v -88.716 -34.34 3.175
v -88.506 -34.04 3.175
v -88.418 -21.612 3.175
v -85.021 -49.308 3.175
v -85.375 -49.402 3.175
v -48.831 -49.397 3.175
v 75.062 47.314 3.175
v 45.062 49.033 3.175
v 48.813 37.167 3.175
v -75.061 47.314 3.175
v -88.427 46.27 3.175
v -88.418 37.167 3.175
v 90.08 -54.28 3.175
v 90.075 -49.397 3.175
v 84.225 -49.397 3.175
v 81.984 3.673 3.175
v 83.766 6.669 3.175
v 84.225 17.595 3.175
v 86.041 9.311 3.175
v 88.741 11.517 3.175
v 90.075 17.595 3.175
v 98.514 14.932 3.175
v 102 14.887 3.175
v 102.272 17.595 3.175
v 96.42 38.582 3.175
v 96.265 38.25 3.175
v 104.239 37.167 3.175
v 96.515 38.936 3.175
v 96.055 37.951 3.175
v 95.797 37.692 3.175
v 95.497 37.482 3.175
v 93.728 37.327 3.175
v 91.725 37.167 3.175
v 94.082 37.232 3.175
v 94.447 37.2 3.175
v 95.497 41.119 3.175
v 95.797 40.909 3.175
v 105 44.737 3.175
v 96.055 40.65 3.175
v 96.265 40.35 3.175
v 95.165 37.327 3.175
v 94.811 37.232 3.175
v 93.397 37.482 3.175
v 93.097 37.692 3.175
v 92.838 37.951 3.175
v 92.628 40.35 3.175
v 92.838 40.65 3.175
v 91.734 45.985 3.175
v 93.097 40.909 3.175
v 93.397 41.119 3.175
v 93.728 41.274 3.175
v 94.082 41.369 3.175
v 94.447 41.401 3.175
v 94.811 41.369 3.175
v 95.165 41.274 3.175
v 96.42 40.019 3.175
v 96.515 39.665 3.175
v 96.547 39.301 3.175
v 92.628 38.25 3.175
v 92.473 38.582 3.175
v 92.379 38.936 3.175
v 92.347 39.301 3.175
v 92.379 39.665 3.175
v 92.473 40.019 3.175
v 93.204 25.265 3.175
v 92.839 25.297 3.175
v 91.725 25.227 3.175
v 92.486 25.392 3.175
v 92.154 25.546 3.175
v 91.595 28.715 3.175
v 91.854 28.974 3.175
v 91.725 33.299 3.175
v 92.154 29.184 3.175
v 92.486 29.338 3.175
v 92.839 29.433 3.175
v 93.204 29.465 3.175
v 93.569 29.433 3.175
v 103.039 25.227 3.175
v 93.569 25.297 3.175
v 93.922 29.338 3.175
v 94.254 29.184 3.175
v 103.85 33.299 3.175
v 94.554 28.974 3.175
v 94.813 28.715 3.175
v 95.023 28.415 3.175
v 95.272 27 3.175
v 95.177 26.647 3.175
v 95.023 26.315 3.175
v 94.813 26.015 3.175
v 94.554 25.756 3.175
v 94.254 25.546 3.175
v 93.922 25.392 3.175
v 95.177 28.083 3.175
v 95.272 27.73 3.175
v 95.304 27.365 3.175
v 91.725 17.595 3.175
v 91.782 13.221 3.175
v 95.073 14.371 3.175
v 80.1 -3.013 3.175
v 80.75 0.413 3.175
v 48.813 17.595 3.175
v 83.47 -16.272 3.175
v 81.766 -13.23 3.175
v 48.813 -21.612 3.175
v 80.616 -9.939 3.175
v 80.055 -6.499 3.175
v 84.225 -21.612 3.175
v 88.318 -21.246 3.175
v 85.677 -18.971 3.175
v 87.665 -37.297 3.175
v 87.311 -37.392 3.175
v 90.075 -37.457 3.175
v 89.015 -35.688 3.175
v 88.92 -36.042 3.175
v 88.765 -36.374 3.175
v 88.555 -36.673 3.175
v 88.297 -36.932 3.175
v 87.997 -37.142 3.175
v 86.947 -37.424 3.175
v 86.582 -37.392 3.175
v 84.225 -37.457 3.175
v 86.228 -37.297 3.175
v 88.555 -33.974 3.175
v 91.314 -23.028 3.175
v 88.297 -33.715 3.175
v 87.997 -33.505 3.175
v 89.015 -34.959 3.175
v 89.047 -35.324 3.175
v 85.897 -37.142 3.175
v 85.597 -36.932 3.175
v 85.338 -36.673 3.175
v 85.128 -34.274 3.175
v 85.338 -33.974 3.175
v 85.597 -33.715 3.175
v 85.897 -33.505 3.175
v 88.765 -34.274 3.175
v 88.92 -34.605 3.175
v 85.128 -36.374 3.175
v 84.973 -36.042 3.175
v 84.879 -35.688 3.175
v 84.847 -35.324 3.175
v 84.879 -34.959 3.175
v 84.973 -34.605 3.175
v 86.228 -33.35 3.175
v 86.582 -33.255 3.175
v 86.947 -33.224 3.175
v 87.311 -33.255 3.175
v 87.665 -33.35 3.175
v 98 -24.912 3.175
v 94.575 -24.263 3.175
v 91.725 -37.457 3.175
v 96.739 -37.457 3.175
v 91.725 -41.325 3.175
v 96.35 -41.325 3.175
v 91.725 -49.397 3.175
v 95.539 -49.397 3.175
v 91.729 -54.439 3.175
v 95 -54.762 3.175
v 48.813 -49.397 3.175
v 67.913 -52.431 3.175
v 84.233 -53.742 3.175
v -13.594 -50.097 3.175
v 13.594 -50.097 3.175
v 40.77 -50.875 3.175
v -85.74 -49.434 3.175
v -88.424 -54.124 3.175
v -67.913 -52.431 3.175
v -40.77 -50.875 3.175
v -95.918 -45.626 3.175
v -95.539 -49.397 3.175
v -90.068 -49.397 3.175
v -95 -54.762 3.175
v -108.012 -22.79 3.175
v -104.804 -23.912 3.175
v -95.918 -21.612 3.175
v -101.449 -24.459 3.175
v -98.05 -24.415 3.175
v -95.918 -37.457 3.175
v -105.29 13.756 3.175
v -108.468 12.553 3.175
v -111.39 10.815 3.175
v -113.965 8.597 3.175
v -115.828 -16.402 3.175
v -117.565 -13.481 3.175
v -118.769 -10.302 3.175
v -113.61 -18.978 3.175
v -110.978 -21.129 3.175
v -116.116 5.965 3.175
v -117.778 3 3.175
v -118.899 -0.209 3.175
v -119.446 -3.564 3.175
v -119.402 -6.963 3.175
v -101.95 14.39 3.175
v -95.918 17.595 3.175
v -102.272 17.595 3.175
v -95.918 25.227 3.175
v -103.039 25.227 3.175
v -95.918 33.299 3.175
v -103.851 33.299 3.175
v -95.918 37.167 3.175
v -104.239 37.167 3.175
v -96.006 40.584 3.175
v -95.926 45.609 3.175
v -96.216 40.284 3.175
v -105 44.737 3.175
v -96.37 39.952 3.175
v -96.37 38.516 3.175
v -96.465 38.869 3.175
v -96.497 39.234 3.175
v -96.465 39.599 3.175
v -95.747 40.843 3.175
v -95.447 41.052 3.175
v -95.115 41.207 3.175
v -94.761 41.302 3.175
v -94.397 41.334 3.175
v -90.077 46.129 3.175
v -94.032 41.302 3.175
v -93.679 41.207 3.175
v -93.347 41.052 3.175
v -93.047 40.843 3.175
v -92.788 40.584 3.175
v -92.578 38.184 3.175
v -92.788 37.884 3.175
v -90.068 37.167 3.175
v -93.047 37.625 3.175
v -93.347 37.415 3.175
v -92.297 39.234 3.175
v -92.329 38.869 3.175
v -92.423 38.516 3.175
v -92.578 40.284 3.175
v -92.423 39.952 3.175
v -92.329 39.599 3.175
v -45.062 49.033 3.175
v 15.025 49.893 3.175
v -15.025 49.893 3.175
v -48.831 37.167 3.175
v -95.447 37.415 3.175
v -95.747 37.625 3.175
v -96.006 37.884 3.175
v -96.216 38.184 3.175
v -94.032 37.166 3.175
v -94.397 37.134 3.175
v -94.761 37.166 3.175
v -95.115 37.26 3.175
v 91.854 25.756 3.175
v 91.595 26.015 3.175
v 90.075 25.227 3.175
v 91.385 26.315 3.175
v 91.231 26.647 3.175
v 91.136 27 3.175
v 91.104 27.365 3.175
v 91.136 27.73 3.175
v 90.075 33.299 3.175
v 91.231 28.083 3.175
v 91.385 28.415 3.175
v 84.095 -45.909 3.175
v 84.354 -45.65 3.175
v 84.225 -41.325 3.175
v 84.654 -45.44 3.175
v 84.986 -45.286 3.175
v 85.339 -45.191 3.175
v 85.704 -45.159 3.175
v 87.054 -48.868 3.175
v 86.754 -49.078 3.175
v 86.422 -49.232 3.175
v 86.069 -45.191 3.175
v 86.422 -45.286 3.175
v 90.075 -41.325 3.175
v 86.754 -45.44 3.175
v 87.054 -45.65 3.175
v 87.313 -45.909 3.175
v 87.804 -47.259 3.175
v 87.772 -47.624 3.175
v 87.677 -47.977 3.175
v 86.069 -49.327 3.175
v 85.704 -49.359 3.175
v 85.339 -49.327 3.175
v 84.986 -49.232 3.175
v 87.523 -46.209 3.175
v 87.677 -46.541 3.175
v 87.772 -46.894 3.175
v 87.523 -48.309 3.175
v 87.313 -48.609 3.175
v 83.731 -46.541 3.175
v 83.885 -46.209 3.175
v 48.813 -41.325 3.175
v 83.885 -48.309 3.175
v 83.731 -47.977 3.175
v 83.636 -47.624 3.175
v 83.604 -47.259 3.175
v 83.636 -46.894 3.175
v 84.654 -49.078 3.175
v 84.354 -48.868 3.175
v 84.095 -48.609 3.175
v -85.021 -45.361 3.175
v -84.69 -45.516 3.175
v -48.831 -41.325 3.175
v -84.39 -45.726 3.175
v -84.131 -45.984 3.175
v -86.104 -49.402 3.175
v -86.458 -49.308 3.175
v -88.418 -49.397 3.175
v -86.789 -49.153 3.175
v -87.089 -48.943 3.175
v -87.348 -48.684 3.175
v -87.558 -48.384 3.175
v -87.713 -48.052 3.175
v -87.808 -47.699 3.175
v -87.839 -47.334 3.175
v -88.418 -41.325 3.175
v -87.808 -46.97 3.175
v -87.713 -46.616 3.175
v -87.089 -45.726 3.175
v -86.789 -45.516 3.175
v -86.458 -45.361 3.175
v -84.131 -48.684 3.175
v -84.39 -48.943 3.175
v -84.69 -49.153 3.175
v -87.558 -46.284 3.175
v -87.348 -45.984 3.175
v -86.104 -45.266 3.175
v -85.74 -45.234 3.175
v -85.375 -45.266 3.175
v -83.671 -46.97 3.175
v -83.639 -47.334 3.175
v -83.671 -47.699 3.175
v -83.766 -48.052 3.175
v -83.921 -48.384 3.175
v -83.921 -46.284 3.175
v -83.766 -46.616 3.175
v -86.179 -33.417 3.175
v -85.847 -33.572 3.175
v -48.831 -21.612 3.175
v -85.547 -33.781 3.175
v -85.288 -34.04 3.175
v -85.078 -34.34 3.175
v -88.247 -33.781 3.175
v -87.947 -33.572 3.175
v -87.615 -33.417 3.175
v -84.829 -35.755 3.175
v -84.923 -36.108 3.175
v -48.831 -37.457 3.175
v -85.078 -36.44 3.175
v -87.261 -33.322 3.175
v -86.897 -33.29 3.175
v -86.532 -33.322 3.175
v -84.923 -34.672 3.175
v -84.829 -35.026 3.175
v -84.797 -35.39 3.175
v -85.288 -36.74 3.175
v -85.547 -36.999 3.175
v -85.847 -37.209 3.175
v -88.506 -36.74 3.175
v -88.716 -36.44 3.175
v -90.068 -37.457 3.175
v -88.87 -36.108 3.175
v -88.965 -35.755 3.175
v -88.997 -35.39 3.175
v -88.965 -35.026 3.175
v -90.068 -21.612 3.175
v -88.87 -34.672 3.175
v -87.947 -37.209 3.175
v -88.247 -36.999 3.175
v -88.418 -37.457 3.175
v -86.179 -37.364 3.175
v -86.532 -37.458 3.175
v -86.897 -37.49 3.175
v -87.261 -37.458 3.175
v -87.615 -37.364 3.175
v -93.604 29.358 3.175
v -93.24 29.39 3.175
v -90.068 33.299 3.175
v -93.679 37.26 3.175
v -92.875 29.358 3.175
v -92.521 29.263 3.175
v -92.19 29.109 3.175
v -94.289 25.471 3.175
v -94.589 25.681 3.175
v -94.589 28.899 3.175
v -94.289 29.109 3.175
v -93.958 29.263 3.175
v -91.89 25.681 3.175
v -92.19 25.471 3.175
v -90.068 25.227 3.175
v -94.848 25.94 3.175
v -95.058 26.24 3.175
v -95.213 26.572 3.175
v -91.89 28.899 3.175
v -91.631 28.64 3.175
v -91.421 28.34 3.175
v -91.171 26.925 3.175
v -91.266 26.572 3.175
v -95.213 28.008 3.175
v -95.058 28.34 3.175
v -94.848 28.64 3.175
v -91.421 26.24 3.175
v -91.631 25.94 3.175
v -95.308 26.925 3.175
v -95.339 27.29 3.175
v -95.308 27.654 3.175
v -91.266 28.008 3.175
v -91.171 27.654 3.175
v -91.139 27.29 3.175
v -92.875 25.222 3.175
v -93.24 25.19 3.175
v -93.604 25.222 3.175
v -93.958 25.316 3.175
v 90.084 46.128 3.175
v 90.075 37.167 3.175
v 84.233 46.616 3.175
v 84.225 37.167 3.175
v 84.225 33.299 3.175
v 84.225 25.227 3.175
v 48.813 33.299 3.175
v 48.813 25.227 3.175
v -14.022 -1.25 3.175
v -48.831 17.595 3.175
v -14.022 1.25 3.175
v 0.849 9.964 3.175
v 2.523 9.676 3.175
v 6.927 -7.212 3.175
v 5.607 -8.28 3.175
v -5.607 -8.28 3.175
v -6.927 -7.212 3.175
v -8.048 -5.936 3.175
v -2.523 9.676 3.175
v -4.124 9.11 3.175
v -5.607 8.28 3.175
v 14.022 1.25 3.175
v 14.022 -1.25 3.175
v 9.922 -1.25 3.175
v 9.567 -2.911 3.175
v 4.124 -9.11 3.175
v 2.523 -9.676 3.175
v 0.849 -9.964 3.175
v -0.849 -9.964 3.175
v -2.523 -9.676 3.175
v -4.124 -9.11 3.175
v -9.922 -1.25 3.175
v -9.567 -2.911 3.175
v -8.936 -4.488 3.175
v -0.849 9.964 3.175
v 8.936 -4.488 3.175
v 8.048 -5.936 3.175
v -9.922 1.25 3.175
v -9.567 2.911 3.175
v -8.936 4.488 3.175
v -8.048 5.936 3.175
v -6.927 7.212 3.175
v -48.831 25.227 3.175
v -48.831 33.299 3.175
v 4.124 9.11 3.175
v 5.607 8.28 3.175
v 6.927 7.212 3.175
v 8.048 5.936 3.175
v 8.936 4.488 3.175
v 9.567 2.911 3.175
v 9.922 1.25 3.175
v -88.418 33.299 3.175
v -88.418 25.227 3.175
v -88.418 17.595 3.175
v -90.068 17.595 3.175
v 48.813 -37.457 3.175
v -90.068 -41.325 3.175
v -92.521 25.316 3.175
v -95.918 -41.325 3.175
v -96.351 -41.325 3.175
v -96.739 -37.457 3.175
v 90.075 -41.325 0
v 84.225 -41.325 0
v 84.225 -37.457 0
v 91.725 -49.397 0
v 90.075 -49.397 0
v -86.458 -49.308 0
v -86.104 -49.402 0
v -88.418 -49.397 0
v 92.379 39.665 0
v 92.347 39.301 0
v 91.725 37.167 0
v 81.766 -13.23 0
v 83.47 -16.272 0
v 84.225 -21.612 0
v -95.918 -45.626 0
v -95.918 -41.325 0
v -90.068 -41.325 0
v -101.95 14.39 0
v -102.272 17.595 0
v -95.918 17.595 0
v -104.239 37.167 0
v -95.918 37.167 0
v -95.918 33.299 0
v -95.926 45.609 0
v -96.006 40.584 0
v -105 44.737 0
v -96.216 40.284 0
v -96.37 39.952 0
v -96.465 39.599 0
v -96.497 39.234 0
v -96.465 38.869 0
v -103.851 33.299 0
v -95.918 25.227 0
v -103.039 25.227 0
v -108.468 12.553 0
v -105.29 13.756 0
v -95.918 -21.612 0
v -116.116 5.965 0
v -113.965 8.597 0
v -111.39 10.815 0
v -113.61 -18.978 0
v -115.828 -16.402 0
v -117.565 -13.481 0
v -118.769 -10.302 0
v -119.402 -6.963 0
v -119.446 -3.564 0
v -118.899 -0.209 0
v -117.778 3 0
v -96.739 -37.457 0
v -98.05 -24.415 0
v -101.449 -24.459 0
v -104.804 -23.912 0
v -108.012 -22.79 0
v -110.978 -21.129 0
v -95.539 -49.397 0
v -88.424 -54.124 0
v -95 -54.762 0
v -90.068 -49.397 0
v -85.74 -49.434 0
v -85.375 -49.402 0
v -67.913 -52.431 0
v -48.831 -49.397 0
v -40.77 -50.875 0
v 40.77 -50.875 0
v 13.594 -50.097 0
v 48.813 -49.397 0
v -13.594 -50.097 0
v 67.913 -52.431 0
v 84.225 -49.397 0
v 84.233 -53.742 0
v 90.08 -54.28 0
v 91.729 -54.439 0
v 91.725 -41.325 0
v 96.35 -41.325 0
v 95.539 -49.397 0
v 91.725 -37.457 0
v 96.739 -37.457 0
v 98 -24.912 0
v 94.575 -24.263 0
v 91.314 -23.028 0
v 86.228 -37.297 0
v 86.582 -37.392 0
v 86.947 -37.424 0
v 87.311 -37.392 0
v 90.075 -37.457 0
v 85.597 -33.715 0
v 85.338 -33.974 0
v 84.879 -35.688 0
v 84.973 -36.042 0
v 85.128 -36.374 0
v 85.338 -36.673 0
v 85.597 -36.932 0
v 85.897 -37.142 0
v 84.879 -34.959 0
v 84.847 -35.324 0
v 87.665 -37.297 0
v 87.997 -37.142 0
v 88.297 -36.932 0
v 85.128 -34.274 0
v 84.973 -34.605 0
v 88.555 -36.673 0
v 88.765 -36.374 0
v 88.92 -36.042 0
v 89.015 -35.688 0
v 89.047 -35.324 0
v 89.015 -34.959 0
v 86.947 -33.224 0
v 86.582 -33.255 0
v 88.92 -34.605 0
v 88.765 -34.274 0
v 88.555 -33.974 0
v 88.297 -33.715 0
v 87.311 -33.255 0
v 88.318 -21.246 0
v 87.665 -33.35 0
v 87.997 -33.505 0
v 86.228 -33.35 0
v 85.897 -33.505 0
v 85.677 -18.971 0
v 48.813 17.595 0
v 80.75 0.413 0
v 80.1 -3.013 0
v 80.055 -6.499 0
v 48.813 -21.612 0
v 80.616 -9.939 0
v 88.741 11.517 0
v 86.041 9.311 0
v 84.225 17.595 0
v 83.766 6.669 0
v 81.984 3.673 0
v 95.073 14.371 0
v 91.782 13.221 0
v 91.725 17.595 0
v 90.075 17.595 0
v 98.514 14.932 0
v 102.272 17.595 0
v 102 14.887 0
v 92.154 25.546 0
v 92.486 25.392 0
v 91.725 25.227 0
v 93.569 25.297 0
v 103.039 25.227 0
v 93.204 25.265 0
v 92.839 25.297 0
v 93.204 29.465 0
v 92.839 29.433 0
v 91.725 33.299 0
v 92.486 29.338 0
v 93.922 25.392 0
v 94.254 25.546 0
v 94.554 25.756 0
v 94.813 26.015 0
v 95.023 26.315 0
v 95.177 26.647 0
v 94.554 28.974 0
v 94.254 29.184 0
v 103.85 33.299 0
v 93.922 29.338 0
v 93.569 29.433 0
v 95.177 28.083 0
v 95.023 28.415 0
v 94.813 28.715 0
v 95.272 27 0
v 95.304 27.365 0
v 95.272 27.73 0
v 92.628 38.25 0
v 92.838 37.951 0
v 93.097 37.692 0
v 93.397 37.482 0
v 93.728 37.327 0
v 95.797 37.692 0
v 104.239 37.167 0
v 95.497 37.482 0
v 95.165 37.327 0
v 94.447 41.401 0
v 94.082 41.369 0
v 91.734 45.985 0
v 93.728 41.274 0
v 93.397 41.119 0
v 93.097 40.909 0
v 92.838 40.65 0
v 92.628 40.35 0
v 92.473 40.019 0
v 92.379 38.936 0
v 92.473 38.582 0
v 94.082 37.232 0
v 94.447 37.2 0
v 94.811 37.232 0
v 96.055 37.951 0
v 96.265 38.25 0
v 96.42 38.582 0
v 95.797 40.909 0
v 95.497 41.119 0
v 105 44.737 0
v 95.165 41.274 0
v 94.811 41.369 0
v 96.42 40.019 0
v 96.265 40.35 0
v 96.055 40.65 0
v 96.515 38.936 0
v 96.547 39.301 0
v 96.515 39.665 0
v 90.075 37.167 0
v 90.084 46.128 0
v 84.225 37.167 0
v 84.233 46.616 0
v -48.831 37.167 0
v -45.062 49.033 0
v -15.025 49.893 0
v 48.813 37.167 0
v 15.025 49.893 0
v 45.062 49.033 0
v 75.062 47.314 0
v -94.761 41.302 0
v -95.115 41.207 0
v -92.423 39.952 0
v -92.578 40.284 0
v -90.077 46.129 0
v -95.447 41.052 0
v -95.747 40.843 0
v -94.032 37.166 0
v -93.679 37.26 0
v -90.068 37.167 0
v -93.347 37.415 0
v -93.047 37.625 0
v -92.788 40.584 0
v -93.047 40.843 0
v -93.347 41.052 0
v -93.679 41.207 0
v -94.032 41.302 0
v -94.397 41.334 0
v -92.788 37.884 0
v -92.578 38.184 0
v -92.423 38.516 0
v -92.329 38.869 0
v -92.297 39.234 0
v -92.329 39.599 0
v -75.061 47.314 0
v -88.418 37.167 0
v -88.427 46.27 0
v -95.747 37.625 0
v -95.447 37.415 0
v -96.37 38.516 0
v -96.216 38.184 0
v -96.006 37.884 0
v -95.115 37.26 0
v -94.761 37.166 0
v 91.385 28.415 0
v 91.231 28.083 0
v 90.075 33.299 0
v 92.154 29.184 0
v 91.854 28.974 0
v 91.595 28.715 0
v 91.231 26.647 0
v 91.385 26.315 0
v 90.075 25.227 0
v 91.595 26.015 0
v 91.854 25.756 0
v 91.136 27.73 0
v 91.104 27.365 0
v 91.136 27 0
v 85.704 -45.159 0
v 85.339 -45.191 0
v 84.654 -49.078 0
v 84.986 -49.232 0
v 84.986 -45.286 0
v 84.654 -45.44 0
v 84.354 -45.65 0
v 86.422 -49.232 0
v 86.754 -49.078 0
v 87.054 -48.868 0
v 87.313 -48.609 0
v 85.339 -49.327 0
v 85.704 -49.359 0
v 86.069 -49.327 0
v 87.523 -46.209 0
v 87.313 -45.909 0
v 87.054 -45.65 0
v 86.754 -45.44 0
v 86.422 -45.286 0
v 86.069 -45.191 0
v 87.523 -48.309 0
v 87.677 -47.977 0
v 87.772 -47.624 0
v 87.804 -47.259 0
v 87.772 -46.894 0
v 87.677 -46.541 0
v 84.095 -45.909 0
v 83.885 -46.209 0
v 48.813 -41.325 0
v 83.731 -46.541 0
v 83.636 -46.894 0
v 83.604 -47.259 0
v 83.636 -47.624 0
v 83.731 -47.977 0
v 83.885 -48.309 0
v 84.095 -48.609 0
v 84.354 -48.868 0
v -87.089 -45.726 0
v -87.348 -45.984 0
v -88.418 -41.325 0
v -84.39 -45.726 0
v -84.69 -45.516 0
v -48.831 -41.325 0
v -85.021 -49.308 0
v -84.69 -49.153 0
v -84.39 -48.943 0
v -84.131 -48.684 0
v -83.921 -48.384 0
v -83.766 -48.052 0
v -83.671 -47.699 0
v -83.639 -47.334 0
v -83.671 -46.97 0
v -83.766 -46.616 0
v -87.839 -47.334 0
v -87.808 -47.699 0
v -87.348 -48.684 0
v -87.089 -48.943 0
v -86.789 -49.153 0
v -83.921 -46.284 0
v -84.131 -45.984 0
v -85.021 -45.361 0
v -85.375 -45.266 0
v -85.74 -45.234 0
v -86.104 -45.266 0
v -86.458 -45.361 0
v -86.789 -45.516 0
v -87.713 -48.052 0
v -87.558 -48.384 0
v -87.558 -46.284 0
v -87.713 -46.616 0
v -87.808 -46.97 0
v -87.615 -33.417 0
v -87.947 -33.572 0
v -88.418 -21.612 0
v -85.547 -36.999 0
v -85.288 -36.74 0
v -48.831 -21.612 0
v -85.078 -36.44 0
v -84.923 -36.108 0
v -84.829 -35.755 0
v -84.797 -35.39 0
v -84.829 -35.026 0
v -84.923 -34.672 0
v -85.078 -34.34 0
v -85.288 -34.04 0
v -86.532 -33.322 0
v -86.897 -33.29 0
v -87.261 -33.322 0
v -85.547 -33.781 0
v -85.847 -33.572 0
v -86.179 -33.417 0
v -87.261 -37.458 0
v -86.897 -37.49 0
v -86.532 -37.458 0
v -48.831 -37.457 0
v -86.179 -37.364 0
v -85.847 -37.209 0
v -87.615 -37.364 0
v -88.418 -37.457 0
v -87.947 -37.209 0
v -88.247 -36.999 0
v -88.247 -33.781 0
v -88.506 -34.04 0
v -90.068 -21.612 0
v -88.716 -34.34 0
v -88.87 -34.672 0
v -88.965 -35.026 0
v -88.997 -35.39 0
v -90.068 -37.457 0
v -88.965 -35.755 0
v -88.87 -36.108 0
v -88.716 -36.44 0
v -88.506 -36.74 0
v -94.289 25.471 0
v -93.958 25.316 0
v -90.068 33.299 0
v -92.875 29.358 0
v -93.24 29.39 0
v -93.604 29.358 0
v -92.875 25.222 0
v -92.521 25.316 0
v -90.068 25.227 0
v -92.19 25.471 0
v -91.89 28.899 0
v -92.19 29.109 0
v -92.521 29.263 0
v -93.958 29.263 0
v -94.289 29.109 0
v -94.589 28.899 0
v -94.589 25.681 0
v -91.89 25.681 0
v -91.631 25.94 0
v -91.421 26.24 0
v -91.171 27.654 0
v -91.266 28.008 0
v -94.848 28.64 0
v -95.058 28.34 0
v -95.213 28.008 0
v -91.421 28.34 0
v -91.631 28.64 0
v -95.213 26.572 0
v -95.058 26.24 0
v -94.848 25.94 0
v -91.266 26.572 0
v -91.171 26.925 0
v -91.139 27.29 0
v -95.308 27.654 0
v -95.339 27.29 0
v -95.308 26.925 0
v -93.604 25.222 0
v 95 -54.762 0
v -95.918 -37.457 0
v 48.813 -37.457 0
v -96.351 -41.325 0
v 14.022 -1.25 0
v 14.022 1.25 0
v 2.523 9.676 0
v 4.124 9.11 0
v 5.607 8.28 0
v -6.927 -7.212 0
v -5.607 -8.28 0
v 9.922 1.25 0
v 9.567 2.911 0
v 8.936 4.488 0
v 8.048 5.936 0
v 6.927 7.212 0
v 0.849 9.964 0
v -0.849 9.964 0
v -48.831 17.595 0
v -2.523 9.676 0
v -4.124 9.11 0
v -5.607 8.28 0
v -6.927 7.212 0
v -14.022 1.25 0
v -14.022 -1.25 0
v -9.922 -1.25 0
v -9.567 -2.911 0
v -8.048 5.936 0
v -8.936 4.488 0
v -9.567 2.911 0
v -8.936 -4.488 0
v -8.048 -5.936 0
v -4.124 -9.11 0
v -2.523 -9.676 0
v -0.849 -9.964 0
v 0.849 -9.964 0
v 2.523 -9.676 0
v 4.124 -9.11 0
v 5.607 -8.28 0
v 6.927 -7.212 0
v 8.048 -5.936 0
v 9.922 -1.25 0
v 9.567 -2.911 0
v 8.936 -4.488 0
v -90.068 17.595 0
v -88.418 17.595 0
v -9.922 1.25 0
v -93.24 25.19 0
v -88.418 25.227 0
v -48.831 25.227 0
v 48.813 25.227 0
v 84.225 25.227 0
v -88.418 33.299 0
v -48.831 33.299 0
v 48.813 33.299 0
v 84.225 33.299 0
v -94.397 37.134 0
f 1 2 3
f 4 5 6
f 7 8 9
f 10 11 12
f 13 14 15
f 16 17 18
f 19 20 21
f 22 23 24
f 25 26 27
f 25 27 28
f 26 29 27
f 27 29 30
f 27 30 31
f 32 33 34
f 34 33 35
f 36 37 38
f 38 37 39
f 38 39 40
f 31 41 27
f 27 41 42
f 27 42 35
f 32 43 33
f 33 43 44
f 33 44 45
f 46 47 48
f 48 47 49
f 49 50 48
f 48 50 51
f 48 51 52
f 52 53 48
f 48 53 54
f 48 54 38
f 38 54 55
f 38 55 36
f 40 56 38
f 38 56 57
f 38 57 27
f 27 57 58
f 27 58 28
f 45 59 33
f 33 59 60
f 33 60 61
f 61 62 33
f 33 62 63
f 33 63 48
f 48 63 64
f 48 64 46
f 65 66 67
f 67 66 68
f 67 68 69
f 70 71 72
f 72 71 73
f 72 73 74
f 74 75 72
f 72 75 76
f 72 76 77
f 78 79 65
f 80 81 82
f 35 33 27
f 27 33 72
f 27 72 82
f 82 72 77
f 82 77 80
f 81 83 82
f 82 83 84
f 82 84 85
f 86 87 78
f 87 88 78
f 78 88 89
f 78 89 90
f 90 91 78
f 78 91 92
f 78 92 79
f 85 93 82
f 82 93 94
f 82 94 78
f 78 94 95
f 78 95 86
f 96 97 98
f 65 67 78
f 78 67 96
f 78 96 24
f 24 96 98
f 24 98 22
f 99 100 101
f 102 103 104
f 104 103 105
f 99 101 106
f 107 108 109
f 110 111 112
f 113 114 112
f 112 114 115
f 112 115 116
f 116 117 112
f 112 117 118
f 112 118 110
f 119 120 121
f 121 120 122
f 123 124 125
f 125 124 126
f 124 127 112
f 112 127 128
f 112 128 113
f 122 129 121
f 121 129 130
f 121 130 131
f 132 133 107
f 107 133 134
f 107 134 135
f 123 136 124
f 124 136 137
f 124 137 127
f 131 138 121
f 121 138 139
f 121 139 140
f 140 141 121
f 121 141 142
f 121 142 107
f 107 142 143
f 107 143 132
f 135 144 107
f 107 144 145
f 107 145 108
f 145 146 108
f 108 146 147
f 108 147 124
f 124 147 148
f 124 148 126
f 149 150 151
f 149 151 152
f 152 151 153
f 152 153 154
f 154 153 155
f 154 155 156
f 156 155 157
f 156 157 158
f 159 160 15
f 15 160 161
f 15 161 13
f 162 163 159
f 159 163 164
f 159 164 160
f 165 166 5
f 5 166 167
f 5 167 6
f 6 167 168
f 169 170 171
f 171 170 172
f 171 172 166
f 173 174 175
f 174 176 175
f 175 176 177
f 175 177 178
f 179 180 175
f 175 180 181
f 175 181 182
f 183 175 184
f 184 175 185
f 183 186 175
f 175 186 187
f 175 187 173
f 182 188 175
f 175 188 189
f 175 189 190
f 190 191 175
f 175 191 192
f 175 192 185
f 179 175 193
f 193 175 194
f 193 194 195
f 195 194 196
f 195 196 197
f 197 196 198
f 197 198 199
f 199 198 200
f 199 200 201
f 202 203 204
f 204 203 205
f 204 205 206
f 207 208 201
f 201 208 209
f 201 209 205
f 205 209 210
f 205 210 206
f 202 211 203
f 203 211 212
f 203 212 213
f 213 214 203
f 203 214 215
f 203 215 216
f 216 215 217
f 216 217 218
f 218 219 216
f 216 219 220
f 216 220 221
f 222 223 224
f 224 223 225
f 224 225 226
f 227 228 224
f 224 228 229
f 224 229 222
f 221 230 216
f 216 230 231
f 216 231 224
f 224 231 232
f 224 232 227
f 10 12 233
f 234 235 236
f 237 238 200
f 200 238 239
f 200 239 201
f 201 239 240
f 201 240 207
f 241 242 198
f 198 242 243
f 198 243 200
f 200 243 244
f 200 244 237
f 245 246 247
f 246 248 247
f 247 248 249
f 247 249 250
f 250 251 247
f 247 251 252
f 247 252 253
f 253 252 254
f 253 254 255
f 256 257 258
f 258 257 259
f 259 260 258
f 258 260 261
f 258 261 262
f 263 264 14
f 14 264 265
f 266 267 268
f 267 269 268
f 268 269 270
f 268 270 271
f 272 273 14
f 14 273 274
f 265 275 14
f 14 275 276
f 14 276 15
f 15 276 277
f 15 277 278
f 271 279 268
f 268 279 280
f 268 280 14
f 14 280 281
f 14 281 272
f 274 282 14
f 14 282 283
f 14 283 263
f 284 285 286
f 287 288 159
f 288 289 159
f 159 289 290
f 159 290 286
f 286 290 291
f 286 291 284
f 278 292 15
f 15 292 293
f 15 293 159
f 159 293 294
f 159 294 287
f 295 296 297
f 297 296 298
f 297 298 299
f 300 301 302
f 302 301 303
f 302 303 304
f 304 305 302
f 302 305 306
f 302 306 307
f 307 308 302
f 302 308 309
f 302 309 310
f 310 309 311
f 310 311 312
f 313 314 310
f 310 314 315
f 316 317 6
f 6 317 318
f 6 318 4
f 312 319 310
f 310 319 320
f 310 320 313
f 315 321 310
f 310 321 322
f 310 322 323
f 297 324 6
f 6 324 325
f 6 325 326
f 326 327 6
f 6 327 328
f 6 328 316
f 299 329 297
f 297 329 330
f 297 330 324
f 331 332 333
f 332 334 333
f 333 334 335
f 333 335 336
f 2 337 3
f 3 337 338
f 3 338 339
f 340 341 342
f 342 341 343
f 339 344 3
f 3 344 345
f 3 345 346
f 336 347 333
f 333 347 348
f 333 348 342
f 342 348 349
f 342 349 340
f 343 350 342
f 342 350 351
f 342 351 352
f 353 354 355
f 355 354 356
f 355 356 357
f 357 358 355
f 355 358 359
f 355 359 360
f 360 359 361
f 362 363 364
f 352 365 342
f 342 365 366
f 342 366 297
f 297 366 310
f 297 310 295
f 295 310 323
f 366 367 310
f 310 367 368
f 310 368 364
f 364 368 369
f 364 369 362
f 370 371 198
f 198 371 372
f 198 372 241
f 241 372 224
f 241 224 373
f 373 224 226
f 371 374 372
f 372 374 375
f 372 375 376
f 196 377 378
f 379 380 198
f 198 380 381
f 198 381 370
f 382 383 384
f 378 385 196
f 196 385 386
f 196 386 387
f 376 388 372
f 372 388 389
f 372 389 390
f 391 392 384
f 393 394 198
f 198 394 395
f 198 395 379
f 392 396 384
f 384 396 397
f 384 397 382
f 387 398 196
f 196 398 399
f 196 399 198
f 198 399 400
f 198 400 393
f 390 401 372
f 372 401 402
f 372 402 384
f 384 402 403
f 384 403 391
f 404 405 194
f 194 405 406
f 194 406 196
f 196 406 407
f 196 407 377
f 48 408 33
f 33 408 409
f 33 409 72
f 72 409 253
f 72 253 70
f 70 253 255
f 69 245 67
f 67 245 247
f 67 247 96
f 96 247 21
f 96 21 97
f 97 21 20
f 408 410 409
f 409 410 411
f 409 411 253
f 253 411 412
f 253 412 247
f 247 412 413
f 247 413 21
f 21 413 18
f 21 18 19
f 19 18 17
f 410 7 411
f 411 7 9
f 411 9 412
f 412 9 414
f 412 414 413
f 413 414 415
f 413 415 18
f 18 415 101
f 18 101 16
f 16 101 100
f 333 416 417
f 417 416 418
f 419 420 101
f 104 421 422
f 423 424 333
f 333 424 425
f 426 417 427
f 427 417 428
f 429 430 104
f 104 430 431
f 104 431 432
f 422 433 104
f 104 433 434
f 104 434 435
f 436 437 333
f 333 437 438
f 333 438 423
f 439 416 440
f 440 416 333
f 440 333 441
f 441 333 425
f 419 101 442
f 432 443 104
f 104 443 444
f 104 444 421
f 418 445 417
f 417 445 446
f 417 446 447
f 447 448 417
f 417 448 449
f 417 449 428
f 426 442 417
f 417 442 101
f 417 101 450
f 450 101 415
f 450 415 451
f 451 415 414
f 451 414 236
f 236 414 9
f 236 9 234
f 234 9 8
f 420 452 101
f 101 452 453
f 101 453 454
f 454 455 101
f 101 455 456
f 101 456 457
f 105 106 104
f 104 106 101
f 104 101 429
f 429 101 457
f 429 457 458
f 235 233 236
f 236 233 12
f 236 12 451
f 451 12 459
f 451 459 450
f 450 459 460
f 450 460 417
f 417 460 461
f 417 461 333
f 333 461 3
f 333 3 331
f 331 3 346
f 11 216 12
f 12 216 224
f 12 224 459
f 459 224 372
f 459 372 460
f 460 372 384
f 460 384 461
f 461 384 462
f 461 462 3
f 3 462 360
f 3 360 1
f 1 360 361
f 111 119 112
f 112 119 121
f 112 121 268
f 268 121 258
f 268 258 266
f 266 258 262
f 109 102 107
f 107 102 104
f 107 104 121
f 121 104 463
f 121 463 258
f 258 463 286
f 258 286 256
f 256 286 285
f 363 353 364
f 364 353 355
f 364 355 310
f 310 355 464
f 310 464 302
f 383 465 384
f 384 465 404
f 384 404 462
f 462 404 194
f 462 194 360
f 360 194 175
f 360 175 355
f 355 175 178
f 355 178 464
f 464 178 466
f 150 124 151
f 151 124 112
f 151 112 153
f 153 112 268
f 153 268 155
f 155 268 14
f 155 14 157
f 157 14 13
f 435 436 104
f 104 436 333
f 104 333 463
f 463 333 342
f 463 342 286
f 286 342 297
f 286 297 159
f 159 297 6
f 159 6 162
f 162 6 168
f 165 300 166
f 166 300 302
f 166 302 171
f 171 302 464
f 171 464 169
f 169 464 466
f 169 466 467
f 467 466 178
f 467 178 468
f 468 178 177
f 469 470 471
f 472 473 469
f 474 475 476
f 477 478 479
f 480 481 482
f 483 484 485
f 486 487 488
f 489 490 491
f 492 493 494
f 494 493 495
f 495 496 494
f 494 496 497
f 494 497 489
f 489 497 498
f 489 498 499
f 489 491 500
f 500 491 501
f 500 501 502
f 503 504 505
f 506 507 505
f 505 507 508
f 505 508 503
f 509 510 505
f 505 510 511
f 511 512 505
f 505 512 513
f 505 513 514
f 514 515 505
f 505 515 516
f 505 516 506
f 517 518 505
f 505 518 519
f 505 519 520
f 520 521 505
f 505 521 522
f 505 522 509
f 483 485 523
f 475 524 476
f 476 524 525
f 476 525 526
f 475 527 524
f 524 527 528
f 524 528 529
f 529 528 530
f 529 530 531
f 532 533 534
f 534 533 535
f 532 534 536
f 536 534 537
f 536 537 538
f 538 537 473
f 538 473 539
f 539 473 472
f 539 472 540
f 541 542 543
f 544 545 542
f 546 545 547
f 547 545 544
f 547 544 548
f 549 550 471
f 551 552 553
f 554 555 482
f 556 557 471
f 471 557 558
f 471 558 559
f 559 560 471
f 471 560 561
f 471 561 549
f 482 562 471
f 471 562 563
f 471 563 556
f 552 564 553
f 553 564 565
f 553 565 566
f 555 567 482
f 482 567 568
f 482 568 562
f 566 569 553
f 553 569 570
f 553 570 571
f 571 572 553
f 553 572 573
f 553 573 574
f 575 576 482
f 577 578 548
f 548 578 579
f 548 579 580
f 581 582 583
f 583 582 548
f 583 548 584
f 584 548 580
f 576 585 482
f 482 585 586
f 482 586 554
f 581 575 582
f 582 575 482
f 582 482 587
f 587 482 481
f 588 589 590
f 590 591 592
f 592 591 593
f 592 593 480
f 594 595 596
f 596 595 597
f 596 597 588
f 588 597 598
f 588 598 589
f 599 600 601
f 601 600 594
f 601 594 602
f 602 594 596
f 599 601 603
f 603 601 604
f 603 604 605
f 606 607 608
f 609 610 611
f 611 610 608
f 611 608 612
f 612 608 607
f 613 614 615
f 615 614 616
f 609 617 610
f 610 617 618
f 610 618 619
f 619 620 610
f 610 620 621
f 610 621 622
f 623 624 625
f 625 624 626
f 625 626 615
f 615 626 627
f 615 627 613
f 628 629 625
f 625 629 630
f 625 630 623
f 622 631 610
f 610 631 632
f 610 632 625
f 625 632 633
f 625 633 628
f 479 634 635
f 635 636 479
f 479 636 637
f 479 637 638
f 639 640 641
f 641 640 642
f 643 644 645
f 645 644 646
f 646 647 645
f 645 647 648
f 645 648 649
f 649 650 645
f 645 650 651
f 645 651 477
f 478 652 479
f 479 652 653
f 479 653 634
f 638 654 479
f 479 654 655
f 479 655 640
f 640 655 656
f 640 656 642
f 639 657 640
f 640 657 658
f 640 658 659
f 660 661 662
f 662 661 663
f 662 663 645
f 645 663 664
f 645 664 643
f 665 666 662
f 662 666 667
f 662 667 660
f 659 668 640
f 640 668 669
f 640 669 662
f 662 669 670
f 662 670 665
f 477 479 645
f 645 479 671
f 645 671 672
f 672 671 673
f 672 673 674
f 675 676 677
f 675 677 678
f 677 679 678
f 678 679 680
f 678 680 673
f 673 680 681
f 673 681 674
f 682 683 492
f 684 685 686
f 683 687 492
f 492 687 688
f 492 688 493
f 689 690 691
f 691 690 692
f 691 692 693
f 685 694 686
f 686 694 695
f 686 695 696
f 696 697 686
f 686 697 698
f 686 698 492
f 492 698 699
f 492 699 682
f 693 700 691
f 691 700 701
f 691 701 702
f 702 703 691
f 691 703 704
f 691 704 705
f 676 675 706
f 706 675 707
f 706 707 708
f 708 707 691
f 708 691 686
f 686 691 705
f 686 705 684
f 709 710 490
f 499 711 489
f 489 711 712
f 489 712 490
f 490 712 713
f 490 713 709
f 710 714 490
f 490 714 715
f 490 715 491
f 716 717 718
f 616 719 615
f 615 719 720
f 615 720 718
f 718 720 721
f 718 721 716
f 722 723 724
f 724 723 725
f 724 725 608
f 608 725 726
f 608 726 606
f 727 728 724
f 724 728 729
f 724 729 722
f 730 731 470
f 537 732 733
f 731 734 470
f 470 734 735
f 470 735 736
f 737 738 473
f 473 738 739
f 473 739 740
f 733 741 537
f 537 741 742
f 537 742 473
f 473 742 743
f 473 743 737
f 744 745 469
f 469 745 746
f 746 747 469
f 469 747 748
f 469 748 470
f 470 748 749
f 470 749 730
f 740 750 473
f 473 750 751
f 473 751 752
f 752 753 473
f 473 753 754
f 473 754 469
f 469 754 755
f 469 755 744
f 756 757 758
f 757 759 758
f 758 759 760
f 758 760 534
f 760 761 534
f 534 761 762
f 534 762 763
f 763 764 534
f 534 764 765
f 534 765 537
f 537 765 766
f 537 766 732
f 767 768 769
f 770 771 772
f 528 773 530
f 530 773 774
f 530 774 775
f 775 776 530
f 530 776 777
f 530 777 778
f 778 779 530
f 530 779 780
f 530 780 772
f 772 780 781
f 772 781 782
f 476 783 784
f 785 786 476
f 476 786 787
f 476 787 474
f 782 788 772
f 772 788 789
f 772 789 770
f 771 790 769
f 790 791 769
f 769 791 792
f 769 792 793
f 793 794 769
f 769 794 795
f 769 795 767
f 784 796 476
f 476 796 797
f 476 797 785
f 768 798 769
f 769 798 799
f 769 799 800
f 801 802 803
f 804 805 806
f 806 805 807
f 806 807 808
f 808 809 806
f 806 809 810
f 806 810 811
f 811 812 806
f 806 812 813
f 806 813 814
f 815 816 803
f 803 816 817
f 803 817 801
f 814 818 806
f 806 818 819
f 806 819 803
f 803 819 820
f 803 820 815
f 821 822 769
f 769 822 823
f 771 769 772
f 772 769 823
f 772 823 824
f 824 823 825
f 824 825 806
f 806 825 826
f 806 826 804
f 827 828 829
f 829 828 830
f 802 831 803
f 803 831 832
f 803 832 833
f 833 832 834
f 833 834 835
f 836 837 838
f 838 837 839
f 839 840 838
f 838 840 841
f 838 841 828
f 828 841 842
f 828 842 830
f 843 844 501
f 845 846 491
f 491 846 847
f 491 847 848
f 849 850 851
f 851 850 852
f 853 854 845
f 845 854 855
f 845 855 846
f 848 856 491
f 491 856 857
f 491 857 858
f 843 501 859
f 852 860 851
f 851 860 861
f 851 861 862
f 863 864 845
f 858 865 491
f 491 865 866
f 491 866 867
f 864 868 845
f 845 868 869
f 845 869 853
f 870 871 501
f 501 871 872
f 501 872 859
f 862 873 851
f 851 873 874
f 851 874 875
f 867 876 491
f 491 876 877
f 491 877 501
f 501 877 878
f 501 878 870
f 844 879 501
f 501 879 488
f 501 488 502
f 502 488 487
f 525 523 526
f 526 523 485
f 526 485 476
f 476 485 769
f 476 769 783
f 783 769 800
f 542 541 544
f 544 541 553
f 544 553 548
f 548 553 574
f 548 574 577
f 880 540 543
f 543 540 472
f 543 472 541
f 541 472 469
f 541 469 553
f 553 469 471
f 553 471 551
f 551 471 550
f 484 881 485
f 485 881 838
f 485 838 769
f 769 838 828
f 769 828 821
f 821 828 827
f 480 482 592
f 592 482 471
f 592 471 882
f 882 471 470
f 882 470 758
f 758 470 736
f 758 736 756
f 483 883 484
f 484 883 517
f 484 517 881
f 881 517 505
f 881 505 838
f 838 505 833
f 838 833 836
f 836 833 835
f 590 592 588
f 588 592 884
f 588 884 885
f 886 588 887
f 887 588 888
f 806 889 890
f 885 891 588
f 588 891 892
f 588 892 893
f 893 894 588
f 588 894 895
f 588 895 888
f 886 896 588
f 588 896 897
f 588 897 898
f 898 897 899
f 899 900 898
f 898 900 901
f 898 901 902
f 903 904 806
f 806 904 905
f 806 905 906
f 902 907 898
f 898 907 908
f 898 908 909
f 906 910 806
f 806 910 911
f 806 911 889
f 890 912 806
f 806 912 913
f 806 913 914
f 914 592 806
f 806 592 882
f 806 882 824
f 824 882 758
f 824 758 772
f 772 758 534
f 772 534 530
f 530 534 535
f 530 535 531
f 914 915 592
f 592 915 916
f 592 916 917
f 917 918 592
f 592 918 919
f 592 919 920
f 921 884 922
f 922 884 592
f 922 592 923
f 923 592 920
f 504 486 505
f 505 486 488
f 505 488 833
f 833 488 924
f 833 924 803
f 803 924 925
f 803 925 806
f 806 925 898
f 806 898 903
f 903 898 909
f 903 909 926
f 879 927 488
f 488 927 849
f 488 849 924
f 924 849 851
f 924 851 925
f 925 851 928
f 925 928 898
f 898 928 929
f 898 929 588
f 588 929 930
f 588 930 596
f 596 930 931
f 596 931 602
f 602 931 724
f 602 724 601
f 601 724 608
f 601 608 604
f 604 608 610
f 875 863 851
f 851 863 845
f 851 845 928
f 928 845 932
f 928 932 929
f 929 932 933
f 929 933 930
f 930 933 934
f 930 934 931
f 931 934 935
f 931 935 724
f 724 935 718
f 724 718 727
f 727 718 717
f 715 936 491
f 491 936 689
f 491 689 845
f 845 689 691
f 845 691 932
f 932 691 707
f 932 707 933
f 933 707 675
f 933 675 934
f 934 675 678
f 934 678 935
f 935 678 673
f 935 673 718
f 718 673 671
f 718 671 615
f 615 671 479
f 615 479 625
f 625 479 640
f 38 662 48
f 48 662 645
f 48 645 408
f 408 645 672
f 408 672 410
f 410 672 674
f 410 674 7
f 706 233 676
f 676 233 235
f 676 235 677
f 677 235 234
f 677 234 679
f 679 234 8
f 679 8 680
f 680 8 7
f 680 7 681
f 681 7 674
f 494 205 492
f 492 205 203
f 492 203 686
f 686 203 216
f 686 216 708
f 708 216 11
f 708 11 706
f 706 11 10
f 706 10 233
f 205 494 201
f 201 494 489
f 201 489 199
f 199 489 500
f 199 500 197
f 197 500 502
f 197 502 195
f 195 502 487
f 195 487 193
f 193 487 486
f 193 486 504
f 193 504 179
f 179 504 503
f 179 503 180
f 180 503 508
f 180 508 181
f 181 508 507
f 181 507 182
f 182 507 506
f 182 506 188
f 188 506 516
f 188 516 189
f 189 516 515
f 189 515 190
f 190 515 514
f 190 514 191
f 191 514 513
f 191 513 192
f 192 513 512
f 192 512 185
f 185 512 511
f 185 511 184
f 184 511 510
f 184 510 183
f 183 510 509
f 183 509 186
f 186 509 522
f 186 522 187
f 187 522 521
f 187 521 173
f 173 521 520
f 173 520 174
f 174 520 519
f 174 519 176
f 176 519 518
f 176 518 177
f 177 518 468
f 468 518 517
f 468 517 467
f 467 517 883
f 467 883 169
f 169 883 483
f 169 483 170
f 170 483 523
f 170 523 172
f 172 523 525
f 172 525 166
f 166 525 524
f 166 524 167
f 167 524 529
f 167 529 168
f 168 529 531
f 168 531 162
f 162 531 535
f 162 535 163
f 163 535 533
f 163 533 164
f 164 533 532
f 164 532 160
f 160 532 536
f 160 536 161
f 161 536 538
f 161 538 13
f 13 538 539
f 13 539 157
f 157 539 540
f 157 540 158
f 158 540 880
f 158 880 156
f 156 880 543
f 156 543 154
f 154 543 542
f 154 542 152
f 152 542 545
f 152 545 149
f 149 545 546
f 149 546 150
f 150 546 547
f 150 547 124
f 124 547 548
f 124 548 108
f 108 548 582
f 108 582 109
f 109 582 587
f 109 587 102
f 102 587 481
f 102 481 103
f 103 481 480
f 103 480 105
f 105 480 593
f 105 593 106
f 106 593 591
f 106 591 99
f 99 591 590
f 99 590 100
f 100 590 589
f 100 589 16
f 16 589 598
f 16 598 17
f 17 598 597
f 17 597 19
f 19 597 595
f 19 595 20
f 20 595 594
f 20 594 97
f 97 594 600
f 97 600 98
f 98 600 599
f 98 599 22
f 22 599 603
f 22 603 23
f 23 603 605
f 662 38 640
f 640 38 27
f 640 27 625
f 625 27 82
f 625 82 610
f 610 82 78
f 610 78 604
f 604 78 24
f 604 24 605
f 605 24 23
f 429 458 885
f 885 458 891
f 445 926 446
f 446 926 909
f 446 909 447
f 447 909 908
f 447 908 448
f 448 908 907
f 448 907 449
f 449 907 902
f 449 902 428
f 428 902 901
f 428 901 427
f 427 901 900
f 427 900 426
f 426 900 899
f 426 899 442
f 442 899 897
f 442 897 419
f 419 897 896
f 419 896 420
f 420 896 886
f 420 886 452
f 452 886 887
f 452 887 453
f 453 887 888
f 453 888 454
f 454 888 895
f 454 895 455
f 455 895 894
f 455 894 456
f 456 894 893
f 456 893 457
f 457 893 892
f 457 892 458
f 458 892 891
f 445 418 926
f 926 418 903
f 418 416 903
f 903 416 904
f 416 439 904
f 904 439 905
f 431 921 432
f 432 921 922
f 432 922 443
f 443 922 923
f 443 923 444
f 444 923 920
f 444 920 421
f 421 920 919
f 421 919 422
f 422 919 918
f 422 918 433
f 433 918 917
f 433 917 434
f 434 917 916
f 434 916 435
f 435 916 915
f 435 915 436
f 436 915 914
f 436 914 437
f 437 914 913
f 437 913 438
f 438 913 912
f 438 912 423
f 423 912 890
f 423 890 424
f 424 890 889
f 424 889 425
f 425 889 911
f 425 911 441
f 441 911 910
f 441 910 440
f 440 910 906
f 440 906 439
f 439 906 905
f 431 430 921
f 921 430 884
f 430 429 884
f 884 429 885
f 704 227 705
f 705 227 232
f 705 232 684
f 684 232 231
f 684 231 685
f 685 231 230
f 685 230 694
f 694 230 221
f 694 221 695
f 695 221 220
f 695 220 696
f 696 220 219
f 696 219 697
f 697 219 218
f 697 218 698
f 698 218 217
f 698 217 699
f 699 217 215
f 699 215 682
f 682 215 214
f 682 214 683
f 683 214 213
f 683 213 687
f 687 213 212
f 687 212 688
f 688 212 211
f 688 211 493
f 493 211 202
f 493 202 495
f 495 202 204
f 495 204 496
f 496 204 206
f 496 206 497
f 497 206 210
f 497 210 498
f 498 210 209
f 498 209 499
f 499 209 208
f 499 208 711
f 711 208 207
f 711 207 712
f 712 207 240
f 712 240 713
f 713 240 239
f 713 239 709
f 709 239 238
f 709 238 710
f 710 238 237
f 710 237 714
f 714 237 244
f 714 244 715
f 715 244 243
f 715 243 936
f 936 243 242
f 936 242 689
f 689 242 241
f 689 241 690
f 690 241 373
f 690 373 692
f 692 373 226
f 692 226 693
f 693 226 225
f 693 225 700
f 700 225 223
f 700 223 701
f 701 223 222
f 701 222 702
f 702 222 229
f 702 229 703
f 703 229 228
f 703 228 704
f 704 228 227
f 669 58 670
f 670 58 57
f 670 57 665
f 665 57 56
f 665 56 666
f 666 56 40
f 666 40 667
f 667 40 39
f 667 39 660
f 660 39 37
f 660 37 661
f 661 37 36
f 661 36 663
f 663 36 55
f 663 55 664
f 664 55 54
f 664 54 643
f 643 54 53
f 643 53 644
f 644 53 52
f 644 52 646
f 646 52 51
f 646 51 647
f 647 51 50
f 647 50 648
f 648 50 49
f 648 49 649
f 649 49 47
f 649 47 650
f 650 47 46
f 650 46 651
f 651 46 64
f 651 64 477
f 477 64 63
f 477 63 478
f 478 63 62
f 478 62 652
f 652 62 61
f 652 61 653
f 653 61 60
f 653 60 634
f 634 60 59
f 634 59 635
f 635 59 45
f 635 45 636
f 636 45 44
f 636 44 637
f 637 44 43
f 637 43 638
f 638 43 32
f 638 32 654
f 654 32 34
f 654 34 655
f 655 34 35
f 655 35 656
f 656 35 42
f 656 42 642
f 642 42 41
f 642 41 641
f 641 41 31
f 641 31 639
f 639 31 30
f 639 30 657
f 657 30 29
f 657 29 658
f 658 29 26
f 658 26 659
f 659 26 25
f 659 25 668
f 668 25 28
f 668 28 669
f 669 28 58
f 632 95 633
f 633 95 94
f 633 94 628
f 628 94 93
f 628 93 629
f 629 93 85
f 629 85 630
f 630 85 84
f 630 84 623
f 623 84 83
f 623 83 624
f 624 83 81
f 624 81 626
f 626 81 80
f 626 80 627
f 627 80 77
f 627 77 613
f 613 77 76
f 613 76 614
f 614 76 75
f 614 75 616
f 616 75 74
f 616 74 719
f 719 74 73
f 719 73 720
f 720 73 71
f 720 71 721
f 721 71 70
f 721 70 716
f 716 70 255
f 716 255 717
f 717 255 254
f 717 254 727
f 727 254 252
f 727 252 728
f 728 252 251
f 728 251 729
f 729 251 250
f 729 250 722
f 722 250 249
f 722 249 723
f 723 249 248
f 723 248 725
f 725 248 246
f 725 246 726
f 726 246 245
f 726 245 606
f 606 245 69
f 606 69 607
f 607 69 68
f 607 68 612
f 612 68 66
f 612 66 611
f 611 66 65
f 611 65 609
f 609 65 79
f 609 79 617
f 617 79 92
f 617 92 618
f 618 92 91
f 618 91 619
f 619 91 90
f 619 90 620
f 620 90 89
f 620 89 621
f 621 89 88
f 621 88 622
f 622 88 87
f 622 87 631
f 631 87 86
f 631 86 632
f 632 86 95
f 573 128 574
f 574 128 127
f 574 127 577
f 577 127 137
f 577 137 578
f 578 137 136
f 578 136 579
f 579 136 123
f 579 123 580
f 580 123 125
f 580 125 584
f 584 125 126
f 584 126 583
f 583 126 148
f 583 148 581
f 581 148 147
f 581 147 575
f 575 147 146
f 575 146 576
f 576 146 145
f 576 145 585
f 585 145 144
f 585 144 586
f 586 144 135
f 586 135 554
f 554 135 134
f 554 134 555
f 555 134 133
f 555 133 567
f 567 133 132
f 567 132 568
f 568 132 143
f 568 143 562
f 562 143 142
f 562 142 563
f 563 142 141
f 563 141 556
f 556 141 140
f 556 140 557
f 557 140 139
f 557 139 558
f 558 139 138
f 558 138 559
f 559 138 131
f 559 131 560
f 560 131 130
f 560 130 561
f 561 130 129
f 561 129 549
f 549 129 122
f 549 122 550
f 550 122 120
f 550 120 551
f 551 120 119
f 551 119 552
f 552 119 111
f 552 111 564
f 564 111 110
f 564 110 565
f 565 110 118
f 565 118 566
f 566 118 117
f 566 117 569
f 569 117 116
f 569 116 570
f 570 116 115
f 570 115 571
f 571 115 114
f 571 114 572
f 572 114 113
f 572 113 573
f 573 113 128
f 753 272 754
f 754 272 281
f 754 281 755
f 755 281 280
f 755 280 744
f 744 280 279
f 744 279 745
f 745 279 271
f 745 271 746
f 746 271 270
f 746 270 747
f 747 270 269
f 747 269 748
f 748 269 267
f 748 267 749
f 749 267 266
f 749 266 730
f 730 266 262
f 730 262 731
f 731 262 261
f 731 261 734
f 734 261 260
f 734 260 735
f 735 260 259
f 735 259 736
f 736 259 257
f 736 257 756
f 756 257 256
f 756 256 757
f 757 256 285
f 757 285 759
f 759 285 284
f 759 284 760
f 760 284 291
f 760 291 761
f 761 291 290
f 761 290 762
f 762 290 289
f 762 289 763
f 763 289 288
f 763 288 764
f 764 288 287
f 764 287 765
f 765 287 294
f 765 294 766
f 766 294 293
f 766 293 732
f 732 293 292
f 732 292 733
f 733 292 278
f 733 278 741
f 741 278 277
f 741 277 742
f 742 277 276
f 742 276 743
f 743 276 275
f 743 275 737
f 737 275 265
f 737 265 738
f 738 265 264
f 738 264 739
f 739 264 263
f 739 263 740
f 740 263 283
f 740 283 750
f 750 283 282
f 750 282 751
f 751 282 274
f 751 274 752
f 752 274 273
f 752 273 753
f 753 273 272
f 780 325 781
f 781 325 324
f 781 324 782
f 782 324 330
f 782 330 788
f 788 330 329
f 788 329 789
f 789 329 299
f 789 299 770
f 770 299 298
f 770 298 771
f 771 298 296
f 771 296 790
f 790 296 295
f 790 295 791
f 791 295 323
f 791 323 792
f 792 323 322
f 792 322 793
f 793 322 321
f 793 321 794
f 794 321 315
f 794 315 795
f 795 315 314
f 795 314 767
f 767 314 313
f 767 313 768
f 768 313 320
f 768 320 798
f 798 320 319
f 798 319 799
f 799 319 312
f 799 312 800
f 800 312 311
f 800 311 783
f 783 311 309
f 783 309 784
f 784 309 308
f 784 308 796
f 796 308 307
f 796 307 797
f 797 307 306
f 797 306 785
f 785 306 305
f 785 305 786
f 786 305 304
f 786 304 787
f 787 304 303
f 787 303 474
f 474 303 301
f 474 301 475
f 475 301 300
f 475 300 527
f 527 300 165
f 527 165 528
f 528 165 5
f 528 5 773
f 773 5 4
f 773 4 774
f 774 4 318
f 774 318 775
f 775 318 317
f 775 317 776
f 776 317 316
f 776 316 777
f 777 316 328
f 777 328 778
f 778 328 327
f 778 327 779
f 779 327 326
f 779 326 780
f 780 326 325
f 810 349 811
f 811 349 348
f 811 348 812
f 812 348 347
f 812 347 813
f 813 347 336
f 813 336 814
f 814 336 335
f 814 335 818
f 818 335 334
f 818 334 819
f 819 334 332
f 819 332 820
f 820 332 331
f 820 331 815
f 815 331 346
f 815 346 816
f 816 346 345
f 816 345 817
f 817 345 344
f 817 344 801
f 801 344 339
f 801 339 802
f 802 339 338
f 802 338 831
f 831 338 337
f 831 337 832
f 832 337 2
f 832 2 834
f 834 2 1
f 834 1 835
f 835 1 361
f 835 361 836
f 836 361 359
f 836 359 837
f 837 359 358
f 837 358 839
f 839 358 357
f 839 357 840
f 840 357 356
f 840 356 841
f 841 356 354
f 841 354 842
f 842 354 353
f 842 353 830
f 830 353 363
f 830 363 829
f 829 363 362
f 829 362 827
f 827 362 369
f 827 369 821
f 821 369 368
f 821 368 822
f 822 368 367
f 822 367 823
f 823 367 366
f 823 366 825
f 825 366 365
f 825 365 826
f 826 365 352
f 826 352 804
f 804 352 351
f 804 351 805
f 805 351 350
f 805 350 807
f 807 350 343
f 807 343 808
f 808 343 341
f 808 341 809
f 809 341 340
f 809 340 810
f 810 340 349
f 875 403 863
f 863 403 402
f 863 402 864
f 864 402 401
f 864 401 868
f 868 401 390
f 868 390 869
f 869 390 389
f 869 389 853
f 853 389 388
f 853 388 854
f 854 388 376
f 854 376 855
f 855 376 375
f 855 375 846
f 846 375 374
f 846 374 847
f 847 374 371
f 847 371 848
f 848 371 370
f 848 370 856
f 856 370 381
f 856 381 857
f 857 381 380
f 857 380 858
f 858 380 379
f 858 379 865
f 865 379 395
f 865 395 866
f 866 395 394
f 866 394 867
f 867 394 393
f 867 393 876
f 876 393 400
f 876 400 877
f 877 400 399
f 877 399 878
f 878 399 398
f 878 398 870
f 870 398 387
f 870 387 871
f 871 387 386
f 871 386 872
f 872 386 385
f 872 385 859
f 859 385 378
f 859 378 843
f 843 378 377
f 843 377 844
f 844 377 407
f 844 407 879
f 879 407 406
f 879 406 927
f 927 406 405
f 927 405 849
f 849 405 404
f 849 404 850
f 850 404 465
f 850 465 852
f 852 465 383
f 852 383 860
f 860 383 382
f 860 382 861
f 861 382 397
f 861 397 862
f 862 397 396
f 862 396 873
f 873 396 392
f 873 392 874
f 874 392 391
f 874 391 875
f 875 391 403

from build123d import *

# Parameters (mm, degrees)
BOSS_EXTRUDE1_DEPTH = 3.175
SKETCH3_R           = 2.1
CUT_EXTRUDE1_DEPTH  = 10


with BuildPart() as part:
    # Sketch1 → Boss-Extrude1 (new body)
    with BuildSketch(Plane.XY):
        with BuildLine():
            Line((-105, 44.736808962), (-101.95, 14.38969213))
            ThreePointArc((-101.95, 14.38969213), (-119.402255024, -6.962562893), (-98.05, -24.414817917))
            Line((-98.05, -24.414817917), (-95, -54.761934749))
            ThreePointArc((-95, -54.761934749), (0, -50), (95, -54.761934749))
            Line((95, -54.761934749), (98, -24.912311636))
            ThreePointArc((98, -24.912311636), (80.100251258, -3.012562893), (102, 14.887185849))
            Line((102, 14.887185849), (105, 44.736808962))
            ThreePointArc((105, 44.736808962), (0, 50), (-105, 44.736808962))
        make_face()
        with BuildLine():
            Line((-14.021567416, 1.25), (-9.921567416, 1.25))
            ThreePointArc((-9.921567416, 1.25), (0, 10), (9.921567416, 1.25))
            Line((9.921567416, 1.25), (14.021567416, 1.25))
            Line((14.021567416, 1.25), (14.021567416, -1.25))
            Line((14.021567416, -1.25), (9.921567416, -1.25))
            ThreePointArc((9.921567416, -1.25), (0, -10), (-9.921567416, -1.25))
            Line((-9.921567416, -1.25), (-14.021567416, -1.25))
            Line((-14.021567416, -1.25), (-14.021567416, 1.25))
        make_face(mode=Mode.SUBTRACT)
    extrude(amount=BOSS_EXTRUDE1_DEPTH)

    # Sketch3 → Cut-Extrude1 (cut)
    with BuildSketch(Plane.XY.offset(3.175)):
        with Locations((-94.396840498, 39.233865601)):
            Circle(SKETCH3_R)
        with Locations((-93.239490742, 27.289806762)):
            Circle(SKETCH3_R)
        with Locations((-86.896840498, -35.390192182)):
            Circle(SKETCH3_R)
        with Locations((-85.739490742, -47.334251021)):
            Circle(SKETCH3_R)
        with Locations((85.70397559, -47.259048155)):
            Circle(SKETCH3_R)
        with Locations((86.946610528, -35.3235608)):
            Circle(SKETCH3_R)
        with Locations((93.20397559, 27.365009628)):
            Circle(SKETCH3_R)
        with Locations((94.446610528, 39.300496983)):
            Circle(SKETCH3_R)
    extrude(amount=-CUT_EXTRUDE1_DEPTH, mode=Mode.SUBTRACT)


solid = part.part
